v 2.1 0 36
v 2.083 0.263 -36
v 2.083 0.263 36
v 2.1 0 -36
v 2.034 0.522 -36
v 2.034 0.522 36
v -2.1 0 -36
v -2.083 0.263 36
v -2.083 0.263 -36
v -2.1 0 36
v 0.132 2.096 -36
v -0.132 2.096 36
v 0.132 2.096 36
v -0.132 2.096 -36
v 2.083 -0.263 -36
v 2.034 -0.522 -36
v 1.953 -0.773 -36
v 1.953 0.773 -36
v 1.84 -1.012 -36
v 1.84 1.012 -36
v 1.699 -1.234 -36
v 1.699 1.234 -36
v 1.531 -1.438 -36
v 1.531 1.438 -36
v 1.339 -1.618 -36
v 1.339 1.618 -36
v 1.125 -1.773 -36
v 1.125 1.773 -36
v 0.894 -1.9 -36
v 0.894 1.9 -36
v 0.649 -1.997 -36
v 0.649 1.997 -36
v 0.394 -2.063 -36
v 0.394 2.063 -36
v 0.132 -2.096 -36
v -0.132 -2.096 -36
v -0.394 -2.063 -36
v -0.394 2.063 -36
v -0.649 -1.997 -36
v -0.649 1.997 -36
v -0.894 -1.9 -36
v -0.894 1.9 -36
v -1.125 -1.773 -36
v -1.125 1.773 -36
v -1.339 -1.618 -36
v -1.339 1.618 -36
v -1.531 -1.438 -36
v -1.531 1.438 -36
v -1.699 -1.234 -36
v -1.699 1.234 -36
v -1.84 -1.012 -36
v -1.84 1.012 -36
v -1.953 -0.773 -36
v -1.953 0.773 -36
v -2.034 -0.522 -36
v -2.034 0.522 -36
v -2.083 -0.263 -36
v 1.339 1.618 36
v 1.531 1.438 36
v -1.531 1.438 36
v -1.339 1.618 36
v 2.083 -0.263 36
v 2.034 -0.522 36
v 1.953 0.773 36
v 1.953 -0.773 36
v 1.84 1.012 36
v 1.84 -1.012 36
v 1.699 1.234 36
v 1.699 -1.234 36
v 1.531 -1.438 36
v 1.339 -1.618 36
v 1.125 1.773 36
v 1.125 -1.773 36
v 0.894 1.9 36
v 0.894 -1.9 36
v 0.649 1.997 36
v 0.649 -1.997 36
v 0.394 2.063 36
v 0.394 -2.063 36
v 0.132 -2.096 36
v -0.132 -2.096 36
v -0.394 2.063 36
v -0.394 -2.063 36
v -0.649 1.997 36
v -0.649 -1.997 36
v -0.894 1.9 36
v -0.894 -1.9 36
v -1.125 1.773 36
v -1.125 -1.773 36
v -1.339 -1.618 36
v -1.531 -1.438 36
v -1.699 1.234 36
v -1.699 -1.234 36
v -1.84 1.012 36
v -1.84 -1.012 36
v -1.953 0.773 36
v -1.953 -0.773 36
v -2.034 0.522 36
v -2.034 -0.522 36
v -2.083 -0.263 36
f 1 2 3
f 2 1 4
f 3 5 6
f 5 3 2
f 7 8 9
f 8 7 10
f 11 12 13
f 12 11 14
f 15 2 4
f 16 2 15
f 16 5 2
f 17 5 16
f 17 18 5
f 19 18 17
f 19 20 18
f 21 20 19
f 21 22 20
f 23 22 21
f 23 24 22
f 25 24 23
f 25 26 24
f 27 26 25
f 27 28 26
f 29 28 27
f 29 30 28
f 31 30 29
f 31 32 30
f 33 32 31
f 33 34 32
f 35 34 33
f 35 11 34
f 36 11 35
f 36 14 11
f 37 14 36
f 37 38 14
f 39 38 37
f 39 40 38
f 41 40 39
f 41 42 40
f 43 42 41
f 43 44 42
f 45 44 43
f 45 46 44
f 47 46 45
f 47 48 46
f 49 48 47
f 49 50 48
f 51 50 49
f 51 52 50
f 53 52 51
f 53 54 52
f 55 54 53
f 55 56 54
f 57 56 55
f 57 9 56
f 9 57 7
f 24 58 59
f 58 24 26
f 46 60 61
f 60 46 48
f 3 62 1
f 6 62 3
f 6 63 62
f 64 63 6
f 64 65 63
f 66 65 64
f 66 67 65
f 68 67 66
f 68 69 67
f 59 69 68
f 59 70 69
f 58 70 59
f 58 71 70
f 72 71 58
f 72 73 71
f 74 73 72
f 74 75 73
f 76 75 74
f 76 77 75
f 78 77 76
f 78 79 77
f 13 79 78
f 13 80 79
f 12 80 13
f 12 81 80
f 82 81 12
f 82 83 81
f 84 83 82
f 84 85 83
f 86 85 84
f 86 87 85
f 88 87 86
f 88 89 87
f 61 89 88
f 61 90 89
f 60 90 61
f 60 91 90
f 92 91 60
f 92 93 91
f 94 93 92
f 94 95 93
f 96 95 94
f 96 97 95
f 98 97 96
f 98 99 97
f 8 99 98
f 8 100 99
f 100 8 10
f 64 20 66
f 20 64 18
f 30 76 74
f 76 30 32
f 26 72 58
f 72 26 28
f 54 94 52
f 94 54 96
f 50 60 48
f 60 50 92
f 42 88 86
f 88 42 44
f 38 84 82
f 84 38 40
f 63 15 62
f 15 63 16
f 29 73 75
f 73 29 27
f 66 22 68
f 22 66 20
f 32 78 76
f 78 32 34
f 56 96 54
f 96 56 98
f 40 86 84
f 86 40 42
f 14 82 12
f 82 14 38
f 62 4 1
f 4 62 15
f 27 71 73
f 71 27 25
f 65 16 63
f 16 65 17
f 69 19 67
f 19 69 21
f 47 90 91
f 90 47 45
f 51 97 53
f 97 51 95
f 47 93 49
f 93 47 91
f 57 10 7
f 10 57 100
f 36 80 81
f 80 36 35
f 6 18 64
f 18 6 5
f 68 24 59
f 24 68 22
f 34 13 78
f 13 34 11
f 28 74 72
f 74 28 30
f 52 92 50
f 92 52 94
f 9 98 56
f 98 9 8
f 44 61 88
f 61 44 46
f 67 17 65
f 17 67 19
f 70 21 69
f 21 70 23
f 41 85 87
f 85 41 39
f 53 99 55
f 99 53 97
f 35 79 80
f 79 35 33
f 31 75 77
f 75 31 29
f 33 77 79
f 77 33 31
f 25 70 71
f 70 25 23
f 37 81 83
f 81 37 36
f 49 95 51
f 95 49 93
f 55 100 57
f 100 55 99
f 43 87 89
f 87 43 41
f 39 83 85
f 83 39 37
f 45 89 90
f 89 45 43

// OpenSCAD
$fn = 50;


difference() {
	union() {
		translate(v = [0, 0, -36.0000000000]) {
			cylinder(h = 72, r = 2.1000000000);
		}
	}
	union() {
		translate(v = [0, 0, -100.0000000000]) {
			cylinder(h = 200, r = 0);
		}
	}
}
